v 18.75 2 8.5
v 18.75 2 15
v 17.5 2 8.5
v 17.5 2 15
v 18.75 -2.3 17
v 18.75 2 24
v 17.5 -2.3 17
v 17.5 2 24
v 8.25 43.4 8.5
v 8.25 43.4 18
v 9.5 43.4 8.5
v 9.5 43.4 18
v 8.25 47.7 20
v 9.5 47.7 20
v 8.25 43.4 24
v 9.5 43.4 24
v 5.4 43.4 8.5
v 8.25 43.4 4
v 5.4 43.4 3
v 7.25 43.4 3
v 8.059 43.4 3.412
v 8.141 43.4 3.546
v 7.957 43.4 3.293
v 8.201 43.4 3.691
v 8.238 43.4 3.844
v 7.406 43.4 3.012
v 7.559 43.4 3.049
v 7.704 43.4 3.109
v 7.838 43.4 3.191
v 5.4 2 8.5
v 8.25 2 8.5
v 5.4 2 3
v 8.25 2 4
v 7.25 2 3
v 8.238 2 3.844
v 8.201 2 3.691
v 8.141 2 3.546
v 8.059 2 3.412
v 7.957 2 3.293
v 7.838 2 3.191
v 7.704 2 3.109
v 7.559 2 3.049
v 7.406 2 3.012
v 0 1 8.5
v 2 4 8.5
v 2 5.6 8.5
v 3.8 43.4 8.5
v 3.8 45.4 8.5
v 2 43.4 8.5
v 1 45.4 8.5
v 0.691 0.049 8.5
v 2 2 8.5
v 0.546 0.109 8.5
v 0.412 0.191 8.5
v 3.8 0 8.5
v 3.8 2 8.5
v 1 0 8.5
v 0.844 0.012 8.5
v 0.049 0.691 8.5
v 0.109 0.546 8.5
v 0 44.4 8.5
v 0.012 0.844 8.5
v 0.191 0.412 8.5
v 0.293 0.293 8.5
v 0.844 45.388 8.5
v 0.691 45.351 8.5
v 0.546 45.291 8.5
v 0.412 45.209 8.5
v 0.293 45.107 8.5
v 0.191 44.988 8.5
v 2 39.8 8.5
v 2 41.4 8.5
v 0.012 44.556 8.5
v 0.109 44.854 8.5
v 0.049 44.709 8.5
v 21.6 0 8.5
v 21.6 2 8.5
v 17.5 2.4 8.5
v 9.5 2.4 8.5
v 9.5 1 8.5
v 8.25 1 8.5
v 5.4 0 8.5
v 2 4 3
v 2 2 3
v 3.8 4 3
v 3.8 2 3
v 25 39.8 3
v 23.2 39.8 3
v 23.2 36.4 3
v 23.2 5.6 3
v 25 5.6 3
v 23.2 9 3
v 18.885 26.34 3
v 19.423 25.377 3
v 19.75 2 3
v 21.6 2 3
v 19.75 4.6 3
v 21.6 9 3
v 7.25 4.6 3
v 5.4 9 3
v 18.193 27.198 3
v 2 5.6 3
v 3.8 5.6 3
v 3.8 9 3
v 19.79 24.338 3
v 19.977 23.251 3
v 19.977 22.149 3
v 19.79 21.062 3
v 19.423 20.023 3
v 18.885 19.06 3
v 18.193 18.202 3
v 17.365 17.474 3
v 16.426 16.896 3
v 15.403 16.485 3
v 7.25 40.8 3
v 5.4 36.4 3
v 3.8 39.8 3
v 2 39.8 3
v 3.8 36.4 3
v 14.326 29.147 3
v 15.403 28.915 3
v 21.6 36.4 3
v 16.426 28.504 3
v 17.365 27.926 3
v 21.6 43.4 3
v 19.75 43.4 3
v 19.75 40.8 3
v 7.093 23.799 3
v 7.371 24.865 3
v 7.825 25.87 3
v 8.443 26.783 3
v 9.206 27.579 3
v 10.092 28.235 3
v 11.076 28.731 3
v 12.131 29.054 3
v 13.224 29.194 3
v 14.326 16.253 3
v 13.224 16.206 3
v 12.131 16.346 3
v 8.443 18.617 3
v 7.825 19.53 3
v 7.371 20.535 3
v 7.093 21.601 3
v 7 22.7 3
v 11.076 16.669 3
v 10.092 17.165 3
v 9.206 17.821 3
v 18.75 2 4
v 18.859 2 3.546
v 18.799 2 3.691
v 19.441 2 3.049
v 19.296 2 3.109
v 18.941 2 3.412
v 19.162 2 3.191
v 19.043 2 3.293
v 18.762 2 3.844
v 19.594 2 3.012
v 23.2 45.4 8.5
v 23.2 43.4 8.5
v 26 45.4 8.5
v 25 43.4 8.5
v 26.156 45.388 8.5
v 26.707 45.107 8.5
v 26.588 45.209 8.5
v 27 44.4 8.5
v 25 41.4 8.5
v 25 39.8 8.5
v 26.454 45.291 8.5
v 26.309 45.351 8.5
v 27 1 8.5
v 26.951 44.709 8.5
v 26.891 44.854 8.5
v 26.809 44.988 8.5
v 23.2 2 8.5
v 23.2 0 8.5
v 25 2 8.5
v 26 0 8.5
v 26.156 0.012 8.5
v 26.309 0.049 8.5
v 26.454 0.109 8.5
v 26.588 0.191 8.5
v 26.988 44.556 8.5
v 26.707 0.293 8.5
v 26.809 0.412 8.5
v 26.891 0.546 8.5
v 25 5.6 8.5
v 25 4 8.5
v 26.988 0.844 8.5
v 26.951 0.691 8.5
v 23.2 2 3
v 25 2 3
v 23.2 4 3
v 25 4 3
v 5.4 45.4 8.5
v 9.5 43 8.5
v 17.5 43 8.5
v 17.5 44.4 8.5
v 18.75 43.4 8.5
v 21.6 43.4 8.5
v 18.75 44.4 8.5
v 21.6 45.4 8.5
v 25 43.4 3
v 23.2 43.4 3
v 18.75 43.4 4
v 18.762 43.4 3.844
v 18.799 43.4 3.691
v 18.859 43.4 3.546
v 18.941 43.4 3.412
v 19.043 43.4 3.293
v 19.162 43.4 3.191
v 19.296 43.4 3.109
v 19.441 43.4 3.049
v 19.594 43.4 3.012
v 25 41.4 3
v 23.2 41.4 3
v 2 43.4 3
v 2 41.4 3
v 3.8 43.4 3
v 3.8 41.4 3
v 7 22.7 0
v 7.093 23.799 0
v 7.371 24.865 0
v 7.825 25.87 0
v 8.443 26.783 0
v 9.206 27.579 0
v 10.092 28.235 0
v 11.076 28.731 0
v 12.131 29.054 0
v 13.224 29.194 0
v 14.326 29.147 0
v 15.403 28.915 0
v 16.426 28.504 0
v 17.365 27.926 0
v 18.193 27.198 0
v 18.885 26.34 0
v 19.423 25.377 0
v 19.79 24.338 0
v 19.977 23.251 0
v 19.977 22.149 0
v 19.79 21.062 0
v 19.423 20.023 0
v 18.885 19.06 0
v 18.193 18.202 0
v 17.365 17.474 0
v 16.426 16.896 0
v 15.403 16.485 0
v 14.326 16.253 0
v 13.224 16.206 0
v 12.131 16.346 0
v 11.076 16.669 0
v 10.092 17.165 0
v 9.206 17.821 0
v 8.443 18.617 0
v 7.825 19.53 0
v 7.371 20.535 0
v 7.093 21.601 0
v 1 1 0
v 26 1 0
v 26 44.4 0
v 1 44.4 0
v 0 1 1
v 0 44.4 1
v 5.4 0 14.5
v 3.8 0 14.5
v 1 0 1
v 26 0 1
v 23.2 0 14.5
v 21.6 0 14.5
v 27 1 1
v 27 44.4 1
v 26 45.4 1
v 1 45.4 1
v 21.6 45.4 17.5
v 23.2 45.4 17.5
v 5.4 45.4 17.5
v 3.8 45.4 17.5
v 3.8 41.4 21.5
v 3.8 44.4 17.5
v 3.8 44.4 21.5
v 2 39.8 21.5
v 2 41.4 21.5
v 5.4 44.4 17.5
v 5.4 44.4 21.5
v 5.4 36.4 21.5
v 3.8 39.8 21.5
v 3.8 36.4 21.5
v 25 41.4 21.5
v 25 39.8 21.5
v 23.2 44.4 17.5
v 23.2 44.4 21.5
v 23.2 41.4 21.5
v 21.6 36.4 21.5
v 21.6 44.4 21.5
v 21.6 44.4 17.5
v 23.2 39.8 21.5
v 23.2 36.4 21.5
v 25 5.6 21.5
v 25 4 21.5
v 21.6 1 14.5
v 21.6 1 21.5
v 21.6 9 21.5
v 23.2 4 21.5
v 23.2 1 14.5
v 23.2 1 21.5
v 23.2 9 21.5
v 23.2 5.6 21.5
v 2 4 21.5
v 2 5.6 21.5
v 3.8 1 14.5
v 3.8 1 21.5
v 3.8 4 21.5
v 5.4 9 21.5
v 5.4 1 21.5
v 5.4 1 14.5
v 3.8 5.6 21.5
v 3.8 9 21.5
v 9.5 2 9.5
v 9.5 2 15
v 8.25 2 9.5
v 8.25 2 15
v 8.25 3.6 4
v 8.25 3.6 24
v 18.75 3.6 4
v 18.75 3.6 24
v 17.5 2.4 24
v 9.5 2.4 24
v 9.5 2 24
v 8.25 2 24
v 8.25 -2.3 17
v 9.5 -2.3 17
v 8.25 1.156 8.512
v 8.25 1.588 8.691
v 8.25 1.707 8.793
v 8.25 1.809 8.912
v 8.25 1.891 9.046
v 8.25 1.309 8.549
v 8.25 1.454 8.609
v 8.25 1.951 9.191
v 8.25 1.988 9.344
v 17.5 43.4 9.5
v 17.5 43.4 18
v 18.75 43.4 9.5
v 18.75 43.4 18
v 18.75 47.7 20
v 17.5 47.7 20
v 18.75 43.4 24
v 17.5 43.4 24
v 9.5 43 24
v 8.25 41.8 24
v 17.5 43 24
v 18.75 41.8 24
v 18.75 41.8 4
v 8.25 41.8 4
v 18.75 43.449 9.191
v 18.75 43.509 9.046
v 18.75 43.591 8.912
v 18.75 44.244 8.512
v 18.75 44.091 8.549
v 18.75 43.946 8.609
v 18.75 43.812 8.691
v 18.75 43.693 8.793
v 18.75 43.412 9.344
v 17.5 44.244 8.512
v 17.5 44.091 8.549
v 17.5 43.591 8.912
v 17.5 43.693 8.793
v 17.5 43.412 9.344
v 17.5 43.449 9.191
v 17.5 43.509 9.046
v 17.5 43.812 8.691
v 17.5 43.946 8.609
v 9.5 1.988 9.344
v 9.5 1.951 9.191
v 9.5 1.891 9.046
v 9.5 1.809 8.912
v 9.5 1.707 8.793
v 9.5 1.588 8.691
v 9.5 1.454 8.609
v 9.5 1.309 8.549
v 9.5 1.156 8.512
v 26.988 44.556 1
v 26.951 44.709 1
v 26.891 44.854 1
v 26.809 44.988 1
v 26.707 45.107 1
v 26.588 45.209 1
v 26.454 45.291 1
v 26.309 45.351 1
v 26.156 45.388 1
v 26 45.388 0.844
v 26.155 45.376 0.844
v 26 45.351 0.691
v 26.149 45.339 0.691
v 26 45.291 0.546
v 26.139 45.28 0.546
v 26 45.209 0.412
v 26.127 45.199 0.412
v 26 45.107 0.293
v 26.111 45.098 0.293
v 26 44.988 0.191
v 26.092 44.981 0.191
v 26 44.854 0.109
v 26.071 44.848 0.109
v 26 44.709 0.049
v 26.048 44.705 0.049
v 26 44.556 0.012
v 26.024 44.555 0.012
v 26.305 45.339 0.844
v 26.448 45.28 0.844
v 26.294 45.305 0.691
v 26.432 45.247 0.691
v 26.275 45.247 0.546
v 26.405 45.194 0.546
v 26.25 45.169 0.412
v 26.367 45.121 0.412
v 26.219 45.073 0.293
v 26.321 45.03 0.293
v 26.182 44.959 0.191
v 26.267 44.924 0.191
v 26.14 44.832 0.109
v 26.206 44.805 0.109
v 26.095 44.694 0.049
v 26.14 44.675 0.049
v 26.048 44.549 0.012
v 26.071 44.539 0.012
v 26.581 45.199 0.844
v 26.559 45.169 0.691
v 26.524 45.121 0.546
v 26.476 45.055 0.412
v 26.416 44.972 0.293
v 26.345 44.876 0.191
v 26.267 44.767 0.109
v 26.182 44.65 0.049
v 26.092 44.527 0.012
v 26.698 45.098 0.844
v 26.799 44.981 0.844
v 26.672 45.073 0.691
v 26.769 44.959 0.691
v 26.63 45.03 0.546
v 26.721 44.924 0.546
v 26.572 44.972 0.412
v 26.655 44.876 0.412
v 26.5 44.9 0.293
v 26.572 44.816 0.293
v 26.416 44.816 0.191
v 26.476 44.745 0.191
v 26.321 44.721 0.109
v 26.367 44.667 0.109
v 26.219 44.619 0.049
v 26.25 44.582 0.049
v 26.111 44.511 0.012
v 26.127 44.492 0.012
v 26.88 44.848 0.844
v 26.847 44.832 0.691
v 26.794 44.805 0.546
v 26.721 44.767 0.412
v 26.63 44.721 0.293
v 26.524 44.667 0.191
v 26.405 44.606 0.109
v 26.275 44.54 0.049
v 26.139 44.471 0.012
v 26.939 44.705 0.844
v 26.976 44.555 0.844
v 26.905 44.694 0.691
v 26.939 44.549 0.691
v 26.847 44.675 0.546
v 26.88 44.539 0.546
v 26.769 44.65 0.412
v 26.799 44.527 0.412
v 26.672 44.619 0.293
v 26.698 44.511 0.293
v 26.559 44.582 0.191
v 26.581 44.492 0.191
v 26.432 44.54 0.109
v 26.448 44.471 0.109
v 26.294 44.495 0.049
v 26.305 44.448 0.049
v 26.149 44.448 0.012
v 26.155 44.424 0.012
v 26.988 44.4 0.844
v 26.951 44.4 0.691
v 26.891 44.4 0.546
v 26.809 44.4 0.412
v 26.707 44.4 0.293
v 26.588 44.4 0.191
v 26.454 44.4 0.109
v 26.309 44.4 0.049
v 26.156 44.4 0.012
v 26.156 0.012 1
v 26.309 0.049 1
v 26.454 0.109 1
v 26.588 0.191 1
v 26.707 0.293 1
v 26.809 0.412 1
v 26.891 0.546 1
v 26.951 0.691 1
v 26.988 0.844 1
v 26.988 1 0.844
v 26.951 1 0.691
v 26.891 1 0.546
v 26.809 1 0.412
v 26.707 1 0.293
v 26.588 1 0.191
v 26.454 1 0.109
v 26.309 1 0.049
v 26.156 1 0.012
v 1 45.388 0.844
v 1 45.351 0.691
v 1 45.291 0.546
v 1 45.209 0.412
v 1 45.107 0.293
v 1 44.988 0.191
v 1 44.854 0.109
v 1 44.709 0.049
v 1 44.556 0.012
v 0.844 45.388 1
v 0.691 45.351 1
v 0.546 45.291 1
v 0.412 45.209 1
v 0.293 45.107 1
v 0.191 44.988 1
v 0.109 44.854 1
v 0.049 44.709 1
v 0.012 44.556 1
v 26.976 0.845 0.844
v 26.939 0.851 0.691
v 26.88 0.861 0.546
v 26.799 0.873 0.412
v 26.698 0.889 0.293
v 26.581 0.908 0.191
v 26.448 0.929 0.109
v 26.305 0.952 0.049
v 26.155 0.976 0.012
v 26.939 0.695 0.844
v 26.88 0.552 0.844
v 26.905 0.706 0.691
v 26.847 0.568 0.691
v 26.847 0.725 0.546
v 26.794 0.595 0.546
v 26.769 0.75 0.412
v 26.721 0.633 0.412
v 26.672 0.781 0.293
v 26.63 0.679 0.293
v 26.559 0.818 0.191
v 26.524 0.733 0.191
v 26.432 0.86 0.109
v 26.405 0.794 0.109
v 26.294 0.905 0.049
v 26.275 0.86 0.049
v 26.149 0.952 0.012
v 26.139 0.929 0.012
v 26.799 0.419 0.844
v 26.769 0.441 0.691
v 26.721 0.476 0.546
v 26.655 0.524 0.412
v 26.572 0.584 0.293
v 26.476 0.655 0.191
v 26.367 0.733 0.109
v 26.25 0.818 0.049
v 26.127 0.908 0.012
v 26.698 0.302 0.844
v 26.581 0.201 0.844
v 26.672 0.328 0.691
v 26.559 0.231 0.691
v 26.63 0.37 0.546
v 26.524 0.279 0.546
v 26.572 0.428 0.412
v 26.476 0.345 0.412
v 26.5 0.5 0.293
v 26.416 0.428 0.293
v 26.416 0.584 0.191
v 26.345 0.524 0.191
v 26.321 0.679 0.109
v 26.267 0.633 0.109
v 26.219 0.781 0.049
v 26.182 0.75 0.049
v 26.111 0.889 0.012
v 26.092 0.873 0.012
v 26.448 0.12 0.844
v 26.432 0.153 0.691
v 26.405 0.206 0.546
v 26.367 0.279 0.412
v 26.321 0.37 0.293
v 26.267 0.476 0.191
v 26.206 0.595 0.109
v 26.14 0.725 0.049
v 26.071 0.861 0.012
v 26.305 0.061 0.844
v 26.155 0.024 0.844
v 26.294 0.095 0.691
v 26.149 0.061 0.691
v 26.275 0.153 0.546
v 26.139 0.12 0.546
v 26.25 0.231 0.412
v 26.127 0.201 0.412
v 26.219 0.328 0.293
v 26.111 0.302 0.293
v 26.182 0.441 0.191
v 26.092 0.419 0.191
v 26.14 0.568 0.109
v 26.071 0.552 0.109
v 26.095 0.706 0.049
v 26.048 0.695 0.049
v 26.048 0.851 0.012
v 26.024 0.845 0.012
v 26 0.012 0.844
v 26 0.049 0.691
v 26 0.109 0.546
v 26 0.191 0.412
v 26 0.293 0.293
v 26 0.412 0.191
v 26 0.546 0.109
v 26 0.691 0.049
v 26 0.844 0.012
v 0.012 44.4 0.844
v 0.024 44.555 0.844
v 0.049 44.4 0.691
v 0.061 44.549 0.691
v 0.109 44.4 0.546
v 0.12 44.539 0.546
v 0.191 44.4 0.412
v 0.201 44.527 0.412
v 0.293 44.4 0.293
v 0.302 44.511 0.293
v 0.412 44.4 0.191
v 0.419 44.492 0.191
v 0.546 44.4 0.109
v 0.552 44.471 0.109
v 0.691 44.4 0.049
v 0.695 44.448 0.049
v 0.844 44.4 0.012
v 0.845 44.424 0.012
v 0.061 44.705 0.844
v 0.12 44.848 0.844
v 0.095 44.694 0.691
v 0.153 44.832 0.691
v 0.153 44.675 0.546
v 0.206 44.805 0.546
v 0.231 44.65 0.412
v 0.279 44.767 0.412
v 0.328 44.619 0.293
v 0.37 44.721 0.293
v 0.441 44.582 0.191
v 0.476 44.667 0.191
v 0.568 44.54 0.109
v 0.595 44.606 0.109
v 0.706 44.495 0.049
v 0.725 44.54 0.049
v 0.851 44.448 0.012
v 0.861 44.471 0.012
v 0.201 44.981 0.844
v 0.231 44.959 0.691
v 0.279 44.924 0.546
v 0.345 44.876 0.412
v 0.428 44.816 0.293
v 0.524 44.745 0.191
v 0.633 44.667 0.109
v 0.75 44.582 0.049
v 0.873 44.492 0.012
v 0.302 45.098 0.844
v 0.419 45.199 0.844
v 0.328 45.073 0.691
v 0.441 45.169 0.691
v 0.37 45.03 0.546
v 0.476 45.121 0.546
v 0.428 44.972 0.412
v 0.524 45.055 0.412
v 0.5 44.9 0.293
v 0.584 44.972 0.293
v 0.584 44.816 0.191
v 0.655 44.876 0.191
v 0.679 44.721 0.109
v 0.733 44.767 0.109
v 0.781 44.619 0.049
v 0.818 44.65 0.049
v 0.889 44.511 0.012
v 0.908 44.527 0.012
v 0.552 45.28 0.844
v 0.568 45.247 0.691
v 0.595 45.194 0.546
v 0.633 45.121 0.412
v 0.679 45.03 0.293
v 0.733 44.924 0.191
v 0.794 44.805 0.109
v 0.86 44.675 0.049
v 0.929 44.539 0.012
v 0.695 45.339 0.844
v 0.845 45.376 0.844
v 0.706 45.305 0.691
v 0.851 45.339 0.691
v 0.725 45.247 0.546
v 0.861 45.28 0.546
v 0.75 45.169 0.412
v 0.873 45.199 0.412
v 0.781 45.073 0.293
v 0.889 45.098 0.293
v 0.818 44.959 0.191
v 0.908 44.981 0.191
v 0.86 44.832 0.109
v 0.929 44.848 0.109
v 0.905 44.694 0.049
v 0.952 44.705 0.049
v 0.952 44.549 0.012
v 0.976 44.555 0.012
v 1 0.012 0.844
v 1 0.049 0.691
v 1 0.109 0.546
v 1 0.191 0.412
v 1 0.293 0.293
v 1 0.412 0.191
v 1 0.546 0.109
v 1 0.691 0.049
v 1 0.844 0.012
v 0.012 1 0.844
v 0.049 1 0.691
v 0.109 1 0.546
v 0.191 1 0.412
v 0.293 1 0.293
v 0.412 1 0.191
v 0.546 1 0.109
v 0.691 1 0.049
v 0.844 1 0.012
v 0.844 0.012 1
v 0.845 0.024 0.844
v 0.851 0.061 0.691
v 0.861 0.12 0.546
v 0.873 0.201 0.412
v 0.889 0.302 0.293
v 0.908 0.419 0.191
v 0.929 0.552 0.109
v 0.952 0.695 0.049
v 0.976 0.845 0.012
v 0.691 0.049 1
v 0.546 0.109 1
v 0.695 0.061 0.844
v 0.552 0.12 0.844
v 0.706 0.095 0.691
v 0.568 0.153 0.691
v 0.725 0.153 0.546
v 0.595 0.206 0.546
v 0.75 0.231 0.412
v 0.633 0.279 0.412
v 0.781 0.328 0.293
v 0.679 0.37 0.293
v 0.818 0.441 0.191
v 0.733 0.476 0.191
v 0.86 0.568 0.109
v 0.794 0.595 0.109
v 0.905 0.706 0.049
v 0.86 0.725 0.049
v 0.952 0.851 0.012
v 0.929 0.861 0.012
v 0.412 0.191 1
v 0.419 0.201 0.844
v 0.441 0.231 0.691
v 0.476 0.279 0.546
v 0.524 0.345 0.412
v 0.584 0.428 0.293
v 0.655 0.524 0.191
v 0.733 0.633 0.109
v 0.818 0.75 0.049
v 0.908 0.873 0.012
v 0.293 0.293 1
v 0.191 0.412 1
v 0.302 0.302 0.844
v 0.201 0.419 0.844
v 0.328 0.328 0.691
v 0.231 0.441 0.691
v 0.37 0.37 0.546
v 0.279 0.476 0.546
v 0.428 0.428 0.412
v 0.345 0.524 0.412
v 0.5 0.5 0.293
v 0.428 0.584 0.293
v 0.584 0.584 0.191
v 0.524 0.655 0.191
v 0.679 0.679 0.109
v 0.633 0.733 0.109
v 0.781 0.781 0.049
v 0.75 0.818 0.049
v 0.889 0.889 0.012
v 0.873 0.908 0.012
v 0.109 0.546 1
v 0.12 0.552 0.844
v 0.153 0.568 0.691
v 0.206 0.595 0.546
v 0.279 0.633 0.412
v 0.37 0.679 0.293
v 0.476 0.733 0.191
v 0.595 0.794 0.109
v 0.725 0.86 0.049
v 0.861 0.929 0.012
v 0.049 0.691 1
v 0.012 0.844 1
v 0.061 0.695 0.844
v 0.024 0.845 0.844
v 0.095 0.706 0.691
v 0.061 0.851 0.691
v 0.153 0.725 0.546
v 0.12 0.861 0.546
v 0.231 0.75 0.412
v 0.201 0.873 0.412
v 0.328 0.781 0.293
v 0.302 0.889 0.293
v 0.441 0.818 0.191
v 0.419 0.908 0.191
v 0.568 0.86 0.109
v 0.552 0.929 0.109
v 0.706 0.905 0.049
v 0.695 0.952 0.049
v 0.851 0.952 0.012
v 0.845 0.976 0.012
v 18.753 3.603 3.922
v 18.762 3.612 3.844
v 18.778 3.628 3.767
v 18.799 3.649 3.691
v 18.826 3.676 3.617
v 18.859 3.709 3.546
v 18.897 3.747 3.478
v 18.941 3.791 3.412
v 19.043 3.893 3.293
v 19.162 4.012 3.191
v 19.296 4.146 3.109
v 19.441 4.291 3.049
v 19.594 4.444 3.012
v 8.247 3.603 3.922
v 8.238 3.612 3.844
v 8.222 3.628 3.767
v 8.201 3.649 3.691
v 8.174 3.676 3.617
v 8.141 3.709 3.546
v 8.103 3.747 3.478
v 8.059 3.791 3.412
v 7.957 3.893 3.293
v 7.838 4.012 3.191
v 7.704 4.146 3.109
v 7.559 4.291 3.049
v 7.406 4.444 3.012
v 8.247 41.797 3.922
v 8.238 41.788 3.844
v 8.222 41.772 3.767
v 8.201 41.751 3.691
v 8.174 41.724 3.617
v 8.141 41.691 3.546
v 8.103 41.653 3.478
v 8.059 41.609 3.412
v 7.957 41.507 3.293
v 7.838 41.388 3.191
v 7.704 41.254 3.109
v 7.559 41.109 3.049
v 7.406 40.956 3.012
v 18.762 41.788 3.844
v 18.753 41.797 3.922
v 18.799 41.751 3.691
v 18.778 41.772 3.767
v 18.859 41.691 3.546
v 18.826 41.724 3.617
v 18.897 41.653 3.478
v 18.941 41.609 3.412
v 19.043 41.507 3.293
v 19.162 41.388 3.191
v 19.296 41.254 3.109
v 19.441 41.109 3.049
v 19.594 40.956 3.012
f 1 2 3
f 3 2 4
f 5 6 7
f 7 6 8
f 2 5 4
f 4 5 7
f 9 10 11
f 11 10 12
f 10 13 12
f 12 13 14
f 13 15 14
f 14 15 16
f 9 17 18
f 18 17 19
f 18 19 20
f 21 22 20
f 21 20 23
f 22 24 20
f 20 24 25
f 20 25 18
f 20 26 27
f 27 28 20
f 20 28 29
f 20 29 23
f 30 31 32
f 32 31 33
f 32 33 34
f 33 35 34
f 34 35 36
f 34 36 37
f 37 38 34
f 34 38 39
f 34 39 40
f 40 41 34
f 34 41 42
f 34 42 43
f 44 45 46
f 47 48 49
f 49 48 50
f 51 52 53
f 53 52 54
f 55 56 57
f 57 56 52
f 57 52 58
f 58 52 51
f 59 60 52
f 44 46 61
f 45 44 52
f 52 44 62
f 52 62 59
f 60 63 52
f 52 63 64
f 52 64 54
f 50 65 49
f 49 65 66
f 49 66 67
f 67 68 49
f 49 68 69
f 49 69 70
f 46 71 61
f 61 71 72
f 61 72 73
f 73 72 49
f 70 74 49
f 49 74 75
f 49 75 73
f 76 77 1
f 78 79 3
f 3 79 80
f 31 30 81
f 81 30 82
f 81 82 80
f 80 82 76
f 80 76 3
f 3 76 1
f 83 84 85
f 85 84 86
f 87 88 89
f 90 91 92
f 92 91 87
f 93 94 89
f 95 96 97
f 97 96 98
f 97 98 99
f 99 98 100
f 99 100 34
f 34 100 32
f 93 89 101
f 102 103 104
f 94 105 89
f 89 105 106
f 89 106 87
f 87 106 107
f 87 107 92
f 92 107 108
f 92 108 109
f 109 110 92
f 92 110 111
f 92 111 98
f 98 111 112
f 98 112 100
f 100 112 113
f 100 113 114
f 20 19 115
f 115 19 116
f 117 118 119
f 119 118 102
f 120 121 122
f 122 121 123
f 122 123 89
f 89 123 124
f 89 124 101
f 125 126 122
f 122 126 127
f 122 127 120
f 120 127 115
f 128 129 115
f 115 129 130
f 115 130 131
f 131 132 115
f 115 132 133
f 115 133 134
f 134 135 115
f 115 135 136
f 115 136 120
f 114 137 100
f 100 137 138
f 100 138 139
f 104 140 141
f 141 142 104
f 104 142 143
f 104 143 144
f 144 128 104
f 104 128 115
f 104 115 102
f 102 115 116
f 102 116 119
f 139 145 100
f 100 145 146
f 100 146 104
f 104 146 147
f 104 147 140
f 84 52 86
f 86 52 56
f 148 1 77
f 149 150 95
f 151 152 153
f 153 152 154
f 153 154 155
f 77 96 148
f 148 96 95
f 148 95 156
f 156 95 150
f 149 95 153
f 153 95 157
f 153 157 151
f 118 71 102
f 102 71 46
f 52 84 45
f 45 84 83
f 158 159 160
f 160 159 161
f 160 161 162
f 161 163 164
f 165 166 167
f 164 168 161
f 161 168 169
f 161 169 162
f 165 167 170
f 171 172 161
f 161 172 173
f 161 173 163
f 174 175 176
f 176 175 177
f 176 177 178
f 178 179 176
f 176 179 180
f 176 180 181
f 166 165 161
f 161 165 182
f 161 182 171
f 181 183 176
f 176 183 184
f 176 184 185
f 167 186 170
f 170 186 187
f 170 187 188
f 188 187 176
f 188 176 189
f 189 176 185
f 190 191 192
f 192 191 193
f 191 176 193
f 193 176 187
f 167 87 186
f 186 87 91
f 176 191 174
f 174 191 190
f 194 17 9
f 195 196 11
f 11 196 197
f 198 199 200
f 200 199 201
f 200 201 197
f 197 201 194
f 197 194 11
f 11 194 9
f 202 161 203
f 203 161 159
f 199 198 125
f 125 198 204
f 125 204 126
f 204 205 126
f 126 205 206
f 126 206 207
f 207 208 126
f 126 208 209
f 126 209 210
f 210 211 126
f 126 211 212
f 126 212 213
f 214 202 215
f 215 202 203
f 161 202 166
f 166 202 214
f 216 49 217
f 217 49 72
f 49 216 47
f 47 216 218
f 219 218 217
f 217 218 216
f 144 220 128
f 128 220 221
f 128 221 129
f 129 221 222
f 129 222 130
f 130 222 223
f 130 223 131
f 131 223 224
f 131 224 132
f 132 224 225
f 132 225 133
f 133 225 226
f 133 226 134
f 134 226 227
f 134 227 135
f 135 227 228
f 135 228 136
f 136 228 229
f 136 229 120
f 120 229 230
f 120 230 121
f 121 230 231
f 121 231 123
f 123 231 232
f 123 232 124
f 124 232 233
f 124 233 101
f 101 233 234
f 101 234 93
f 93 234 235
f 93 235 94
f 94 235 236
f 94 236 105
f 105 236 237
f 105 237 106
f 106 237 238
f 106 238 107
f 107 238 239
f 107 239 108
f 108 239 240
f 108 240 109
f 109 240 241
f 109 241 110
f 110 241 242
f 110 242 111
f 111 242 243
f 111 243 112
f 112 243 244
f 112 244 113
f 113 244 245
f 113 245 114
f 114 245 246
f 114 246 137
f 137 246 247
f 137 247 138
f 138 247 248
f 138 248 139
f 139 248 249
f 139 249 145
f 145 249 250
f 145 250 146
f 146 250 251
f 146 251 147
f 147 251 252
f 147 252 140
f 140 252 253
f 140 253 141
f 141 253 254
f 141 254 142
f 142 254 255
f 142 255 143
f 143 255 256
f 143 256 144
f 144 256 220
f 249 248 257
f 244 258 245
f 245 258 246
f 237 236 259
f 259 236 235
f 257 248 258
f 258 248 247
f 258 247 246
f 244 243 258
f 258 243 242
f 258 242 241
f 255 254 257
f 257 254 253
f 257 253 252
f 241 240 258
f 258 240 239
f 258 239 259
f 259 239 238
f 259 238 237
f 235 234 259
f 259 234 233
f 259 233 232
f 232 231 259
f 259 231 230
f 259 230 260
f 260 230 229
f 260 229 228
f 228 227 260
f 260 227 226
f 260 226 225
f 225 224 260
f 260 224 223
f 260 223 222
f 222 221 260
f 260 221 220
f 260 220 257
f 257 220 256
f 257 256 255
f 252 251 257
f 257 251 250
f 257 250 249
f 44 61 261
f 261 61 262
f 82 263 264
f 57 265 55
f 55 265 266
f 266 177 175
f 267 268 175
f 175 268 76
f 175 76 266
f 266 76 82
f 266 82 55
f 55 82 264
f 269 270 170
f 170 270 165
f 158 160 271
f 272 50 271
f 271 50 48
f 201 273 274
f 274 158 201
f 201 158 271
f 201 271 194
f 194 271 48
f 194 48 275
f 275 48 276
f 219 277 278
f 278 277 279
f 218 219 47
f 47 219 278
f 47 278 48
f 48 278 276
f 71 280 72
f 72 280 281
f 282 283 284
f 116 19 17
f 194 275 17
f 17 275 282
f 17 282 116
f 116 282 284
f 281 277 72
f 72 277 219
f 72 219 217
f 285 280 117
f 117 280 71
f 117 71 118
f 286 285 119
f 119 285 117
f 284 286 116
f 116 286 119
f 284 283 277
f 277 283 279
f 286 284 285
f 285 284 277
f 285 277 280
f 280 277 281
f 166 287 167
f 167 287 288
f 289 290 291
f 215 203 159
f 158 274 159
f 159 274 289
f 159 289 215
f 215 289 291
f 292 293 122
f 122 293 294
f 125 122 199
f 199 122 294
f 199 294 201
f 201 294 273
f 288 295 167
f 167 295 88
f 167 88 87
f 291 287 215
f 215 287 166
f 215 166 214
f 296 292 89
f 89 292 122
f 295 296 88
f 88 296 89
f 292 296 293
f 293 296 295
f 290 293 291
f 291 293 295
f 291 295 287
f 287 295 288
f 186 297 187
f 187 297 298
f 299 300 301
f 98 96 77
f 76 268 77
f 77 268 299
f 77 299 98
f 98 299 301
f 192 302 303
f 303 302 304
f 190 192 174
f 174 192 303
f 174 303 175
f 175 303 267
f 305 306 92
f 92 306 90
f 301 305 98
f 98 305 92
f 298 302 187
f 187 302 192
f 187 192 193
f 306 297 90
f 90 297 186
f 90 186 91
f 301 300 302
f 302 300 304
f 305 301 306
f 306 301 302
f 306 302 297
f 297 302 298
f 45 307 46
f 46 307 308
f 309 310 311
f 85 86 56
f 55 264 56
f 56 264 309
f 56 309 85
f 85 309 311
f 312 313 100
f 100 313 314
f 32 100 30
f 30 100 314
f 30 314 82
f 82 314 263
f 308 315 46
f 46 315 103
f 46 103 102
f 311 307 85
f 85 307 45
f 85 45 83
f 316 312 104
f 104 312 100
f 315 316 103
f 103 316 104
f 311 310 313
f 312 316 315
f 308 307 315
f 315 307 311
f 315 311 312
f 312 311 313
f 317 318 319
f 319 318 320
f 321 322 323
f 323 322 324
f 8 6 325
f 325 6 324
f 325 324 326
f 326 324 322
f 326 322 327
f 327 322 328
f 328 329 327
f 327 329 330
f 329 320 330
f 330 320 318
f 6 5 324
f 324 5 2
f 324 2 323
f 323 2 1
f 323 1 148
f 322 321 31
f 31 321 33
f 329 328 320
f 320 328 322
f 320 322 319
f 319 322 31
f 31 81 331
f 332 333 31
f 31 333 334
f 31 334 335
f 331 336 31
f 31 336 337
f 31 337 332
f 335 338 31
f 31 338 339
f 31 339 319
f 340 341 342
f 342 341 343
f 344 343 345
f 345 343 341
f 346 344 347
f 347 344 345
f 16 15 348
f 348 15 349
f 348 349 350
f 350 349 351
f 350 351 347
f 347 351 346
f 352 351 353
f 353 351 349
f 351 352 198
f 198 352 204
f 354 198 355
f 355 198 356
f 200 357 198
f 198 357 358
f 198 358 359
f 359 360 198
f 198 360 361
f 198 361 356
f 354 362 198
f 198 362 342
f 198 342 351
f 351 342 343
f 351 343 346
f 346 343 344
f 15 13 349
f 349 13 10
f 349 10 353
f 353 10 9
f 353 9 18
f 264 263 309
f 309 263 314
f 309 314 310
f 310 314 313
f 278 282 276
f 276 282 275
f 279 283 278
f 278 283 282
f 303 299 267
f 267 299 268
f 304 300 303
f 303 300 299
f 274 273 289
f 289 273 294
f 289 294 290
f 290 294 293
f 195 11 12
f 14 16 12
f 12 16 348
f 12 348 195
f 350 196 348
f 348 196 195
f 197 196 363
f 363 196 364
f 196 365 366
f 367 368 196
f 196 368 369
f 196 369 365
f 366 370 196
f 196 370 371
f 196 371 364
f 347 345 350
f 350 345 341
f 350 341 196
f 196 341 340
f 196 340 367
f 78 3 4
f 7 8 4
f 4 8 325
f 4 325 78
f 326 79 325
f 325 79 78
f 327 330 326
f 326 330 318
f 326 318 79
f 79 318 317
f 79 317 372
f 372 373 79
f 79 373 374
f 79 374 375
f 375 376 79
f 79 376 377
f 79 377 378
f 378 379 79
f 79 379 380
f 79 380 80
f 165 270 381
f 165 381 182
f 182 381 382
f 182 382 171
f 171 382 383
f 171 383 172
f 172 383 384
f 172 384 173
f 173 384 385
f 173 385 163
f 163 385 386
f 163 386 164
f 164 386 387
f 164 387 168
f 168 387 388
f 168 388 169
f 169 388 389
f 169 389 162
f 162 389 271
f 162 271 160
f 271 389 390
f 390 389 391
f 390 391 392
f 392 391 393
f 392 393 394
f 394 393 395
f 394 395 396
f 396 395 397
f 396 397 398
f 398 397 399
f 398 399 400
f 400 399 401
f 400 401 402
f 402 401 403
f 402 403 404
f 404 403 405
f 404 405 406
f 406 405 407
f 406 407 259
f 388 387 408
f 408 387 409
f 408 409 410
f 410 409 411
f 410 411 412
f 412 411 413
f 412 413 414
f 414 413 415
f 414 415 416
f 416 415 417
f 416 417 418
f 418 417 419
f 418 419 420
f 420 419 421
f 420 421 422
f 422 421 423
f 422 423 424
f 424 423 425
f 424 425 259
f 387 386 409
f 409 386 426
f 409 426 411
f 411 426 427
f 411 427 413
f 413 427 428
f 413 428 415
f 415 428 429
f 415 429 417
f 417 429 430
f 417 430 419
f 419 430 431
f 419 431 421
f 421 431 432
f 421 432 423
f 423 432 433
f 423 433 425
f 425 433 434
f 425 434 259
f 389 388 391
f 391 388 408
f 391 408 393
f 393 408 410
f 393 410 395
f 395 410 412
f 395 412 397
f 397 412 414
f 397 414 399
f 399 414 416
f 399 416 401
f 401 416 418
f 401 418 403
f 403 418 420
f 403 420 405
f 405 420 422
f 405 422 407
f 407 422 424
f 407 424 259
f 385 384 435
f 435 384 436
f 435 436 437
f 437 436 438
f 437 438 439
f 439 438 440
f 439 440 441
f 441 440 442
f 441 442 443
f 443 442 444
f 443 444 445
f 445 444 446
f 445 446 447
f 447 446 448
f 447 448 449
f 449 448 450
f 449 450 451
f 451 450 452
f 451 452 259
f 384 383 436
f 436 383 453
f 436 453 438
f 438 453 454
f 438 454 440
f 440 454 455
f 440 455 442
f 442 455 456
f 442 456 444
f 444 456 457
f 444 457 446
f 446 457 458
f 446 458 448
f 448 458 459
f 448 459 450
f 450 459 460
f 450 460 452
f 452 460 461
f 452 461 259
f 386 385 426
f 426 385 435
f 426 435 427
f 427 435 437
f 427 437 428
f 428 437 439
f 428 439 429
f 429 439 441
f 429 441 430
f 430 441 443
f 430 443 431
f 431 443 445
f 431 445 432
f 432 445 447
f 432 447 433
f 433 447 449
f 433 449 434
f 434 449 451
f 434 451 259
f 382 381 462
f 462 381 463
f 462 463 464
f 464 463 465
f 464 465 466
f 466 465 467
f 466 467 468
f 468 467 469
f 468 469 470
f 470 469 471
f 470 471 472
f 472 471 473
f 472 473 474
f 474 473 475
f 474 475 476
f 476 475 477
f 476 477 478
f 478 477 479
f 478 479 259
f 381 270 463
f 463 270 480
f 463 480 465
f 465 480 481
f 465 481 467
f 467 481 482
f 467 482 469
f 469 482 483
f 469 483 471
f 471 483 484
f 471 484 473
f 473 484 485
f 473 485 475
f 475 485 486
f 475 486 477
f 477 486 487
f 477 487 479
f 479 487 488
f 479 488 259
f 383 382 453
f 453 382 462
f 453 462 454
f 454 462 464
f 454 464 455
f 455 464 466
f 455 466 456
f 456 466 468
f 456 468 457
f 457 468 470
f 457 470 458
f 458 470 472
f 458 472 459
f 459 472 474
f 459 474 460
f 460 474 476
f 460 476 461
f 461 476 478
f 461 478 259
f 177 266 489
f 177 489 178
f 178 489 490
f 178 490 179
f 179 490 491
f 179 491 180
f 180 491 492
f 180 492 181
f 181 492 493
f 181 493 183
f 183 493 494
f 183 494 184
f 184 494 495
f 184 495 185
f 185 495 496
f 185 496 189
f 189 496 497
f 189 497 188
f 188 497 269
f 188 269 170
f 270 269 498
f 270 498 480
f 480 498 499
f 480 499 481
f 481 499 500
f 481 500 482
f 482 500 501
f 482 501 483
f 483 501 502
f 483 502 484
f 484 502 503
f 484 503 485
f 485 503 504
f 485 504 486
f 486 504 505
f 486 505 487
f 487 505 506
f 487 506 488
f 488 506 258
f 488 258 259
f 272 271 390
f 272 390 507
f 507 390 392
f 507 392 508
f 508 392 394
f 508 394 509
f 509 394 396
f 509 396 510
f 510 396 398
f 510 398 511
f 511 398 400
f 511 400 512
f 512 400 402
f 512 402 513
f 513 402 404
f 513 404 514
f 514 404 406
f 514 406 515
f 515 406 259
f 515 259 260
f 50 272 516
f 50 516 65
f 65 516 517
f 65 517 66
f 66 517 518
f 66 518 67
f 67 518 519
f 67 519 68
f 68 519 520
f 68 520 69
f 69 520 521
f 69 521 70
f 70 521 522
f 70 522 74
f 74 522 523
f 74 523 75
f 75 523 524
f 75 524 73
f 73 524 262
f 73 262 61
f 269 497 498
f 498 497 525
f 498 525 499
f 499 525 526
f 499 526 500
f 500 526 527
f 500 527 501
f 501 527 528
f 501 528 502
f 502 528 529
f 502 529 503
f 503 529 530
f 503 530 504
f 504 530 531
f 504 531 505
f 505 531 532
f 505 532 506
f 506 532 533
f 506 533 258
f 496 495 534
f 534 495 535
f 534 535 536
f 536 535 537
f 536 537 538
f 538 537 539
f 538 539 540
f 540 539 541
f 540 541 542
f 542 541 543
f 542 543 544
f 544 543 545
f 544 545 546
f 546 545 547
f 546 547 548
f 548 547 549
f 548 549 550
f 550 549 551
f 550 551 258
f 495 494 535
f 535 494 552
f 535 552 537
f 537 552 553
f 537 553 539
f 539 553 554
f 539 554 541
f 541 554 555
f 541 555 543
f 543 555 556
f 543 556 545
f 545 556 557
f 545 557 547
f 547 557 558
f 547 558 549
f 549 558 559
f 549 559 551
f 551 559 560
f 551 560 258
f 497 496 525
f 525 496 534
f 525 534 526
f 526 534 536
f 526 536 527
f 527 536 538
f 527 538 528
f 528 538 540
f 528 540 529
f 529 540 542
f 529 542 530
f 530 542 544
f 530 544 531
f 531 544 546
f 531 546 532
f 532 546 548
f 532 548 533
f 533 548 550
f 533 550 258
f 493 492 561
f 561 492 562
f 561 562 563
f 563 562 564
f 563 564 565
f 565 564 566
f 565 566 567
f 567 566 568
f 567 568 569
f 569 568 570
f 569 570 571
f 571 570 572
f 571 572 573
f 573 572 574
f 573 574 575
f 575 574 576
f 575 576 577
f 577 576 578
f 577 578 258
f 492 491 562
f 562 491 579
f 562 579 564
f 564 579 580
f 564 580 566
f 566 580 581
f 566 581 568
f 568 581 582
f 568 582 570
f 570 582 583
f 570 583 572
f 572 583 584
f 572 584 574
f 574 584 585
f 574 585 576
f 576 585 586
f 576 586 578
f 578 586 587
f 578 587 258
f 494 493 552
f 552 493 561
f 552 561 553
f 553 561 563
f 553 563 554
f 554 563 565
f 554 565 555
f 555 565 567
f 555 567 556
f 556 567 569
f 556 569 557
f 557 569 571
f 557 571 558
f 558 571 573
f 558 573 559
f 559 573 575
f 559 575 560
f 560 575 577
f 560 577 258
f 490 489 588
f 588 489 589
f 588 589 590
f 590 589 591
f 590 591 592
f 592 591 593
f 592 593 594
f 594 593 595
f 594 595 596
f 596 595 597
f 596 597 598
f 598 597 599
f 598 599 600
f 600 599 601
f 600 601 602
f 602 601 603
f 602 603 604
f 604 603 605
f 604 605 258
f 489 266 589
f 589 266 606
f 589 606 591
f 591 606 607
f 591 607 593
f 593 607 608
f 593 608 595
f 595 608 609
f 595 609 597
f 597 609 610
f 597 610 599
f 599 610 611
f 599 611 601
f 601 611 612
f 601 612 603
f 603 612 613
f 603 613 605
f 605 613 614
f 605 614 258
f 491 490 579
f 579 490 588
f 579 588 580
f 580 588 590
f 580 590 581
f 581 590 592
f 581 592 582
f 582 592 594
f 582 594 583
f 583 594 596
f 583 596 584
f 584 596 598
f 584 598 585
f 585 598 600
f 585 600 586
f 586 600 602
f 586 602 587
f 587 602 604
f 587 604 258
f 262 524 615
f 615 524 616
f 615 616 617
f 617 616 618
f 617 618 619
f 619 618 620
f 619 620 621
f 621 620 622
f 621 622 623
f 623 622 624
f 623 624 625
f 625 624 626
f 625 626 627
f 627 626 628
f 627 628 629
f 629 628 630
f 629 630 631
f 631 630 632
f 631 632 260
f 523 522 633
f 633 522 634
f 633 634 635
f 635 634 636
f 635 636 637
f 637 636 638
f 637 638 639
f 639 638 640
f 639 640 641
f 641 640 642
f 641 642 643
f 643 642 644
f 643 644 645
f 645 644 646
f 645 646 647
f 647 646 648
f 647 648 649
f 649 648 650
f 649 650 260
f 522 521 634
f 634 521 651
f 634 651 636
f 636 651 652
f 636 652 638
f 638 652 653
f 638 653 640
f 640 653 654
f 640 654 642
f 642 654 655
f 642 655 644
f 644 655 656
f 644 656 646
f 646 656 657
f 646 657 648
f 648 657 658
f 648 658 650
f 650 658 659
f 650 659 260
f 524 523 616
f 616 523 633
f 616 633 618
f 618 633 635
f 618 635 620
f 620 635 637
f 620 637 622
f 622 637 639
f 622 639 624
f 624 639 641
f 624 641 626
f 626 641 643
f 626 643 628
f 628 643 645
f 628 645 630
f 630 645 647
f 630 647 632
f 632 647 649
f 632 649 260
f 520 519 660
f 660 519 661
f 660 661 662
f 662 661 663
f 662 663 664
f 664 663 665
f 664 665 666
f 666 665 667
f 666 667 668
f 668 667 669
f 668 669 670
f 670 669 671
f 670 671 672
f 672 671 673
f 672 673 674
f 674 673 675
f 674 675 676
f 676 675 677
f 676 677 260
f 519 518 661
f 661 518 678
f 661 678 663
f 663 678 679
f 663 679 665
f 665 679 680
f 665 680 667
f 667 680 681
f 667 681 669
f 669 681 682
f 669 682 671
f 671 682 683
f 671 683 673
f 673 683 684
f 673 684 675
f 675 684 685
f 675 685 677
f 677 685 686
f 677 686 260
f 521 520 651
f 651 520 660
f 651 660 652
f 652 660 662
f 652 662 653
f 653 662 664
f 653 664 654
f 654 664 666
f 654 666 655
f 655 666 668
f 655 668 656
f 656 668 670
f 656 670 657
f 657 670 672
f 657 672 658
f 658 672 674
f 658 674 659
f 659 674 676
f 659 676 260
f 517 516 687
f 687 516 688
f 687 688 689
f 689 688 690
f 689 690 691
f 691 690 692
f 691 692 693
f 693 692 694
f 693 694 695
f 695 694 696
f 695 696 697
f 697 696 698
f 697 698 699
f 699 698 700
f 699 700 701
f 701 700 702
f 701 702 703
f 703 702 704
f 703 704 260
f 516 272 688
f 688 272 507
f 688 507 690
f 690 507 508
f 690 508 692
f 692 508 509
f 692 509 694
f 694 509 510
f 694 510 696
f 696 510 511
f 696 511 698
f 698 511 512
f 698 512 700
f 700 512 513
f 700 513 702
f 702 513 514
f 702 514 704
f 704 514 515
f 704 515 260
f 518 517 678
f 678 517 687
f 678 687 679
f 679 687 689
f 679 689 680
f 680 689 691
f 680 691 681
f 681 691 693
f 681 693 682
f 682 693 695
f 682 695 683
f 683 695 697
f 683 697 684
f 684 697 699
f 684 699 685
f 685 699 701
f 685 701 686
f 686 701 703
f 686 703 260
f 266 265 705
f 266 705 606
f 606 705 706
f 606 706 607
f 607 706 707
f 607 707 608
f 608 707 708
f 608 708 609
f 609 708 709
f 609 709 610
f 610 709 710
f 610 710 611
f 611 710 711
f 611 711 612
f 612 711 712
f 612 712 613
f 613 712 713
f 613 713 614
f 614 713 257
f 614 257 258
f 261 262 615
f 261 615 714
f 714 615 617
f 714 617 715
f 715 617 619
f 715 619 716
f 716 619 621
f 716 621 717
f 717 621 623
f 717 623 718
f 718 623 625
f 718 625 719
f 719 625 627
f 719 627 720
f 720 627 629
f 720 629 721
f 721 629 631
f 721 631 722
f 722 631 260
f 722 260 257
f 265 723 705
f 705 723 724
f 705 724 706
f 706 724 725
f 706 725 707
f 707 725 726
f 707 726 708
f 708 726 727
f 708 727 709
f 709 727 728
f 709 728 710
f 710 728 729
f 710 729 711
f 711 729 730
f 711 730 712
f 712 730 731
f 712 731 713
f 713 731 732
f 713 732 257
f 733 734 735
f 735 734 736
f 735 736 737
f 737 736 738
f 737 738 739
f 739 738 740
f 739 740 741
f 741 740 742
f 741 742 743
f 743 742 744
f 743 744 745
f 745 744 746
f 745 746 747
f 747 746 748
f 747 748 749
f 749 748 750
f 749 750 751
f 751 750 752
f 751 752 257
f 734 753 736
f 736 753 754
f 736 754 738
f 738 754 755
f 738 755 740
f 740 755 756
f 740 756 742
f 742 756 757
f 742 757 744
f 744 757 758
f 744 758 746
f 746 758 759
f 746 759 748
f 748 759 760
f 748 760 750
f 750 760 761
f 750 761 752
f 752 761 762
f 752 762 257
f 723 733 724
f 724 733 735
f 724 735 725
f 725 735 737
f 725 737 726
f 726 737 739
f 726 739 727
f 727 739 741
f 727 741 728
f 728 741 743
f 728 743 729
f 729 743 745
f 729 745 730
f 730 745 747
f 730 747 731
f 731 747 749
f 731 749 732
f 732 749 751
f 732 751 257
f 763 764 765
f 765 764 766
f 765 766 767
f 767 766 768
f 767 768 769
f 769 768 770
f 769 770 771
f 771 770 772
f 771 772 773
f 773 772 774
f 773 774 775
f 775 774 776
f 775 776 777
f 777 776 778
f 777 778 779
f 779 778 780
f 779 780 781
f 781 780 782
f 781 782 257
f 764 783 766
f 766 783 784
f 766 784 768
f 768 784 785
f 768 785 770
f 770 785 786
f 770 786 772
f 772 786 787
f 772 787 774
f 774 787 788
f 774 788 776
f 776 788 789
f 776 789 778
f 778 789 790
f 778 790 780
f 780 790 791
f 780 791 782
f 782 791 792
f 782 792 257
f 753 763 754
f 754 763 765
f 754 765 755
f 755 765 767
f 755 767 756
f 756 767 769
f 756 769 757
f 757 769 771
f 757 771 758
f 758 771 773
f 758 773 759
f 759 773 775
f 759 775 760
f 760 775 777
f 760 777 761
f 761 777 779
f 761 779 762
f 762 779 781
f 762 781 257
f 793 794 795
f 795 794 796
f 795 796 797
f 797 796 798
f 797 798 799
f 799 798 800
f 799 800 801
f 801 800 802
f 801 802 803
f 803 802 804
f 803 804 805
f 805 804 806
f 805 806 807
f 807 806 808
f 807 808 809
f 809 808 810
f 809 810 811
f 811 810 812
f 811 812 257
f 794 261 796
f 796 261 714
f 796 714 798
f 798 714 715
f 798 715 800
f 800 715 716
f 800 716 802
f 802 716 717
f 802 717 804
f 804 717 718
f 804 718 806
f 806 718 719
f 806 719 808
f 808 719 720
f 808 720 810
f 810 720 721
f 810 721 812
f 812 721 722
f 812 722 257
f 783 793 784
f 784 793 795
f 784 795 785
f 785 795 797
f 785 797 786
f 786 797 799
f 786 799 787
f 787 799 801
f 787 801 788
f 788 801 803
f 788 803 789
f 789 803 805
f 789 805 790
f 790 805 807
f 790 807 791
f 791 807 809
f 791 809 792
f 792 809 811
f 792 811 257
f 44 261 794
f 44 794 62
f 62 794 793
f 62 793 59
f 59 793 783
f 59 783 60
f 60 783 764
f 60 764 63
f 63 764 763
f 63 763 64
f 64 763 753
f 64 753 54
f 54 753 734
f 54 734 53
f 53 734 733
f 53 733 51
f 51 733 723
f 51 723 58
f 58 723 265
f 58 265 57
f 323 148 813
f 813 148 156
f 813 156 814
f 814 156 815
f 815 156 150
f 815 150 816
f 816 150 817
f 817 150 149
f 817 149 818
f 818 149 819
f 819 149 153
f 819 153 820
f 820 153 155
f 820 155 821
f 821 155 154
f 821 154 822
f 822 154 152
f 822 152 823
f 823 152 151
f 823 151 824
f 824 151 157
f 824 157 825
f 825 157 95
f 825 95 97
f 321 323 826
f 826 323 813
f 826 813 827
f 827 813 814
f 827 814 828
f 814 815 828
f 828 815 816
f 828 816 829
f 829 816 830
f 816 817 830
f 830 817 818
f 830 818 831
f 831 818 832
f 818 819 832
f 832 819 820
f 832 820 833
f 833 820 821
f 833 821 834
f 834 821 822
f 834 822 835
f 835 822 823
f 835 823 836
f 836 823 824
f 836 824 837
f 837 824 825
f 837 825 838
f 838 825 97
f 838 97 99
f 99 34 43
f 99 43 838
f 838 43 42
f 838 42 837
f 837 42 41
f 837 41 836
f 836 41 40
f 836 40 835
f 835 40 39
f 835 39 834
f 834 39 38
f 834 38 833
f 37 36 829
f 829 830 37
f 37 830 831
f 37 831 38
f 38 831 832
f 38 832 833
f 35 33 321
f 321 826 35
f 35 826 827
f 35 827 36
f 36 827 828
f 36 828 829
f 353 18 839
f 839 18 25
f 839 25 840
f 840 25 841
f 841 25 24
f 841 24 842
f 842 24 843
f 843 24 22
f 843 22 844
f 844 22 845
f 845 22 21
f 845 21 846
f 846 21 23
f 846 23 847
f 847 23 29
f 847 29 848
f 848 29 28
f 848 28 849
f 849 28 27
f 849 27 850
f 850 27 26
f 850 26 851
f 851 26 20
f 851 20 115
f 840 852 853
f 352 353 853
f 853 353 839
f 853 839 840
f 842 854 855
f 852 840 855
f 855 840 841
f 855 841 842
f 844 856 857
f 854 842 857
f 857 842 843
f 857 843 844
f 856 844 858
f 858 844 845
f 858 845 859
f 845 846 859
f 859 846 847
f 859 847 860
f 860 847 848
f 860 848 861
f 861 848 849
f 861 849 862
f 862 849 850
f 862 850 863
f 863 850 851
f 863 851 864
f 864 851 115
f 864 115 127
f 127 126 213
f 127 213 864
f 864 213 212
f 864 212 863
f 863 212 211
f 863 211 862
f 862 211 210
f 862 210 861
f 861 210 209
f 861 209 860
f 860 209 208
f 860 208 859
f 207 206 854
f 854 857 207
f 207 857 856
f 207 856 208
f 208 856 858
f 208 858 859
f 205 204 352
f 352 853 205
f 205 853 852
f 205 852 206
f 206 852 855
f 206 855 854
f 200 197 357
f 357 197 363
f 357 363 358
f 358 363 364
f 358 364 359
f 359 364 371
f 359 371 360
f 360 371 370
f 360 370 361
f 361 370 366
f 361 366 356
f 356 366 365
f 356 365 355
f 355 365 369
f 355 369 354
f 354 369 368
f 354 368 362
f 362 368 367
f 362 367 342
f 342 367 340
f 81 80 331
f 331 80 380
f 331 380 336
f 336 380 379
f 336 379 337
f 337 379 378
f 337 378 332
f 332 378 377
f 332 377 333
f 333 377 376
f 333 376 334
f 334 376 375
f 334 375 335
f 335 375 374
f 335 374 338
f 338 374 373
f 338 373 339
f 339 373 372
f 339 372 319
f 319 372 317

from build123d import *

# Parameters (mm, degrees)
SKETCH_1_W           = 27
SKETCH_1_H           = 45.4
SKETCH_1_R           = 6.5
EXTRUDE_1_DEPTH      = 8.5
CUT_EXTRUDE_1_DEPTH  = 21
SKETCH_3_W           = 23
SKETCH_3_H           = 41.4
CUT_EXTRUDE_2_DEPTH  = 5.5
EXTRUDE_2_DEPTH      = 18.5
EXTRUDE_3_DEPTH      = 5.25
EXTRUDE_3_DEPTH_BACK = 5.25
SKETCH_7_W           = 4
SKETCH_7_H           = 1
SKETCH_7_W_2         = 7
CUT_EXTRUDE_3_DEPTH  = 3
SKETCH_8_W           = 7
SKETCH_8_H           = 1
SKETCH_8_W_2         = 4
CUT_EXTRUDE_4_DEPTH  = 3
CUT_EXTRUDE_START    = -15.5
SKETCH_9_W           = 8
SKETCH_9_H           = 13.007388574
CUT_EXTRUDE_5_DEPTH  = 15.5
FILLET_1_R           = 1
FILLET_3_R           = 1
SKETCH_10_W          = 22.881985058
SKETCH_10_H          = 38.494603021
SKETCH_10_R          = 6.5
EXTRUDE_4_DEPTH      = 3


with BuildPart() as part:
    # Эскиз1 → Бобышка-Вытянуть1 (new body)
    with BuildSketch(Plane.XY):
        with Locations((13.5, 22.7)):
            Rectangle(SKETCH_1_W, SKETCH_1_H)
        with Locations((13.5, 22.7)):
            Circle(SKETCH_1_R, mode=Mode.SUBTRACT)
    extrude(amount=EXTRUDE_1_DEPTH)

    # Эскиз2 → Вырез-Вытянуть1 (cut)
    with BuildSketch(Plane(origin=(3, 0, 0), x_dir=(0, 0, -1), z_dir=(1, 0, 0))):
        with BuildLine():
            Line((0, 40.4), (0, 5))
            ThreePointArc((0, 5), (-1, 22.7), (0, 40.4))
        make_face()
    extrude(amount=CUT_EXTRUDE_1_DEPTH, mode=Mode.SUBTRACT)

    # Эскиз3 → Вырез-Вытянуть2 (cut)
    with BuildSketch(Plane.XY.offset(8.5)):
        with Locations((13.5, 22.7)):
            Rectangle(SKETCH_3_W, SKETCH_3_H)
    extrude(amount=-CUT_EXTRUDE_2_DEPTH, mode=Mode.SUBTRACT)

    # Эскиз4 → Бобышка-Вытянуть2 (add)
    with BuildSketch(Plane.XY.offset(3)):
        Polygon((3.8, 45.4), (3.8, 41.4), (2, 41.4), (2, 39.8), (3.8, 39.8), (3.8, 36.4), (5.4, 36.4), (5.4, 45.4), align=None)
        Polygon((21.6, 45.4), (23.2, 45.4), (23.2, 41.4), (25, 41.4), (25, 39.8), (23.2, 39.8), (23.2, 36.4), (21.6, 36.4), align=None)
        Polygon((23.2, 0), (23.2, 4), (25, 4), (25, 5.6), (23.2, 5.6), (23.2, 9), (21.6, 9), (21.6, 0), align=None)
        Polygon((5.4, 0), (3.8, 0), (3.8, 4), (2, 4), (2, 5.6), (3.8, 5.6), (3.8, 9), (5.4, 9), align=None)
    extrude(amount=EXTRUDE_2_DEPTH)

    # Эскиз6 → Бобышка-Вытянуть3 (add, two sides: drawn at the far end of the back side and taken through both)
    with BuildSketch(Plane.ZY.offset(-13.5).offset(-EXTRUDE_3_DEPTH_BACK)):
        Polygon((3, 2), (3, 3.6), (24, 3.6), (24, 2), (17, -2.3), (15, 2), align=None)
        Polygon((18, 43.4), (3, 43.4), (3, 41.8), (24, 41.8), (24, 43.4), (20, 47.7), align=None)
    extrude(amount=EXTRUDE_3_DEPTH + EXTRUDE_3_DEPTH_BACK)

    # Эскиз7 → Вырез-Вытянуть3 (cut)
    with BuildSketch(Plane.ZY.offset(-3.8)):
        with Locations((19.5, 44.9)):
            Rectangle(SKETCH_7_W, SKETCH_7_H)
        with Locations((18, 0.5)):
            Rectangle(SKETCH_7_W_2, SKETCH_7_H)
    extrude(amount=-CUT_EXTRUDE_3_DEPTH, mode=Mode.SUBTRACT)

    # Эскиз8 → Вырез-Вытянуть4 (cut)
    with BuildSketch(Plane(origin=(23.2, 0, 0), x_dir=(0, 0, -1), z_dir=(1, 0, 0))):
        with Locations((-18, 0.5)):
            Rectangle(SKETCH_8_W, SKETCH_8_H)
        with Locations((-19.5, 44.9)):
            Rectangle(SKETCH_8_W_2, SKETCH_8_H)
    extrude(amount=-CUT_EXTRUDE_4_DEPTH, mode=Mode.SUBTRACT)

    # Эскиз9 → Вырез-Вытянуть5 (cut)
    with BuildSketch(Plane.XY.offset(24).offset(CUT_EXTRUDE_START)):
        with Locations((13.5, -4.103694287)):
            Rectangle(SKETCH_9_W, SKETCH_9_H)
        with Locations((13.5, 49.503694287)):
            Rectangle(SKETCH_9_W, SKETCH_9_H)
    extrude(amount=CUT_EXTRUDE_5_DEPTH, mode=Mode.SUBTRACT)

    # Скругление1
    fillet_1_edges = [part.edges().sort_by_distance(p)[0] for p in [
        (13.5, 45.4, 0),
        (27, 22.7, 0),
        (13.5, 0, 0),
        (0, 22.7, 0),
        (0, 45.4, 4.25),
        (27, 45.4, 4.25),
        (27, 0, 4.25),
        (0, 0, 4.25),
    ]]
    fillet(fillet_1_edges, radius=FILLET_1_R)

    # Скругление3
    fillet_3_edges = [part.edges().sort_by_distance(p)[0] for p in [
        (8.875, 2, 8.5),
        (18.75, 2.8, 3),
        (13.5, 3.6, 3),
        (8.25, 2.8, 3),
        (18.125, 43.4, 8.5),
        (13.5, 41.8, 3),
        (18.75, 42.6, 3),
        (8.25, 42.6, 3),
    ]]
    fillet(fillet_3_edges, radius=FILLET_3_R)

    # Эскиз10 → Бобышка-Вытянуть4 (add)
    with BuildSketch(Plane(origin=(0, 0, 0), x_dir=(-1, 0, 0), z_dir=(0, 0, -1))):
        with Locations((-13.488807008, 22.65959588)):
            Rectangle(SKETCH_10_W, SKETCH_10_H)
        with Locations((-13.5, 22.7)):
            Circle(SKETCH_10_R, mode=Mode.SUBTRACT)
    extrude(amount=-EXTRUDE_4_DEPTH)


solid = part.part
